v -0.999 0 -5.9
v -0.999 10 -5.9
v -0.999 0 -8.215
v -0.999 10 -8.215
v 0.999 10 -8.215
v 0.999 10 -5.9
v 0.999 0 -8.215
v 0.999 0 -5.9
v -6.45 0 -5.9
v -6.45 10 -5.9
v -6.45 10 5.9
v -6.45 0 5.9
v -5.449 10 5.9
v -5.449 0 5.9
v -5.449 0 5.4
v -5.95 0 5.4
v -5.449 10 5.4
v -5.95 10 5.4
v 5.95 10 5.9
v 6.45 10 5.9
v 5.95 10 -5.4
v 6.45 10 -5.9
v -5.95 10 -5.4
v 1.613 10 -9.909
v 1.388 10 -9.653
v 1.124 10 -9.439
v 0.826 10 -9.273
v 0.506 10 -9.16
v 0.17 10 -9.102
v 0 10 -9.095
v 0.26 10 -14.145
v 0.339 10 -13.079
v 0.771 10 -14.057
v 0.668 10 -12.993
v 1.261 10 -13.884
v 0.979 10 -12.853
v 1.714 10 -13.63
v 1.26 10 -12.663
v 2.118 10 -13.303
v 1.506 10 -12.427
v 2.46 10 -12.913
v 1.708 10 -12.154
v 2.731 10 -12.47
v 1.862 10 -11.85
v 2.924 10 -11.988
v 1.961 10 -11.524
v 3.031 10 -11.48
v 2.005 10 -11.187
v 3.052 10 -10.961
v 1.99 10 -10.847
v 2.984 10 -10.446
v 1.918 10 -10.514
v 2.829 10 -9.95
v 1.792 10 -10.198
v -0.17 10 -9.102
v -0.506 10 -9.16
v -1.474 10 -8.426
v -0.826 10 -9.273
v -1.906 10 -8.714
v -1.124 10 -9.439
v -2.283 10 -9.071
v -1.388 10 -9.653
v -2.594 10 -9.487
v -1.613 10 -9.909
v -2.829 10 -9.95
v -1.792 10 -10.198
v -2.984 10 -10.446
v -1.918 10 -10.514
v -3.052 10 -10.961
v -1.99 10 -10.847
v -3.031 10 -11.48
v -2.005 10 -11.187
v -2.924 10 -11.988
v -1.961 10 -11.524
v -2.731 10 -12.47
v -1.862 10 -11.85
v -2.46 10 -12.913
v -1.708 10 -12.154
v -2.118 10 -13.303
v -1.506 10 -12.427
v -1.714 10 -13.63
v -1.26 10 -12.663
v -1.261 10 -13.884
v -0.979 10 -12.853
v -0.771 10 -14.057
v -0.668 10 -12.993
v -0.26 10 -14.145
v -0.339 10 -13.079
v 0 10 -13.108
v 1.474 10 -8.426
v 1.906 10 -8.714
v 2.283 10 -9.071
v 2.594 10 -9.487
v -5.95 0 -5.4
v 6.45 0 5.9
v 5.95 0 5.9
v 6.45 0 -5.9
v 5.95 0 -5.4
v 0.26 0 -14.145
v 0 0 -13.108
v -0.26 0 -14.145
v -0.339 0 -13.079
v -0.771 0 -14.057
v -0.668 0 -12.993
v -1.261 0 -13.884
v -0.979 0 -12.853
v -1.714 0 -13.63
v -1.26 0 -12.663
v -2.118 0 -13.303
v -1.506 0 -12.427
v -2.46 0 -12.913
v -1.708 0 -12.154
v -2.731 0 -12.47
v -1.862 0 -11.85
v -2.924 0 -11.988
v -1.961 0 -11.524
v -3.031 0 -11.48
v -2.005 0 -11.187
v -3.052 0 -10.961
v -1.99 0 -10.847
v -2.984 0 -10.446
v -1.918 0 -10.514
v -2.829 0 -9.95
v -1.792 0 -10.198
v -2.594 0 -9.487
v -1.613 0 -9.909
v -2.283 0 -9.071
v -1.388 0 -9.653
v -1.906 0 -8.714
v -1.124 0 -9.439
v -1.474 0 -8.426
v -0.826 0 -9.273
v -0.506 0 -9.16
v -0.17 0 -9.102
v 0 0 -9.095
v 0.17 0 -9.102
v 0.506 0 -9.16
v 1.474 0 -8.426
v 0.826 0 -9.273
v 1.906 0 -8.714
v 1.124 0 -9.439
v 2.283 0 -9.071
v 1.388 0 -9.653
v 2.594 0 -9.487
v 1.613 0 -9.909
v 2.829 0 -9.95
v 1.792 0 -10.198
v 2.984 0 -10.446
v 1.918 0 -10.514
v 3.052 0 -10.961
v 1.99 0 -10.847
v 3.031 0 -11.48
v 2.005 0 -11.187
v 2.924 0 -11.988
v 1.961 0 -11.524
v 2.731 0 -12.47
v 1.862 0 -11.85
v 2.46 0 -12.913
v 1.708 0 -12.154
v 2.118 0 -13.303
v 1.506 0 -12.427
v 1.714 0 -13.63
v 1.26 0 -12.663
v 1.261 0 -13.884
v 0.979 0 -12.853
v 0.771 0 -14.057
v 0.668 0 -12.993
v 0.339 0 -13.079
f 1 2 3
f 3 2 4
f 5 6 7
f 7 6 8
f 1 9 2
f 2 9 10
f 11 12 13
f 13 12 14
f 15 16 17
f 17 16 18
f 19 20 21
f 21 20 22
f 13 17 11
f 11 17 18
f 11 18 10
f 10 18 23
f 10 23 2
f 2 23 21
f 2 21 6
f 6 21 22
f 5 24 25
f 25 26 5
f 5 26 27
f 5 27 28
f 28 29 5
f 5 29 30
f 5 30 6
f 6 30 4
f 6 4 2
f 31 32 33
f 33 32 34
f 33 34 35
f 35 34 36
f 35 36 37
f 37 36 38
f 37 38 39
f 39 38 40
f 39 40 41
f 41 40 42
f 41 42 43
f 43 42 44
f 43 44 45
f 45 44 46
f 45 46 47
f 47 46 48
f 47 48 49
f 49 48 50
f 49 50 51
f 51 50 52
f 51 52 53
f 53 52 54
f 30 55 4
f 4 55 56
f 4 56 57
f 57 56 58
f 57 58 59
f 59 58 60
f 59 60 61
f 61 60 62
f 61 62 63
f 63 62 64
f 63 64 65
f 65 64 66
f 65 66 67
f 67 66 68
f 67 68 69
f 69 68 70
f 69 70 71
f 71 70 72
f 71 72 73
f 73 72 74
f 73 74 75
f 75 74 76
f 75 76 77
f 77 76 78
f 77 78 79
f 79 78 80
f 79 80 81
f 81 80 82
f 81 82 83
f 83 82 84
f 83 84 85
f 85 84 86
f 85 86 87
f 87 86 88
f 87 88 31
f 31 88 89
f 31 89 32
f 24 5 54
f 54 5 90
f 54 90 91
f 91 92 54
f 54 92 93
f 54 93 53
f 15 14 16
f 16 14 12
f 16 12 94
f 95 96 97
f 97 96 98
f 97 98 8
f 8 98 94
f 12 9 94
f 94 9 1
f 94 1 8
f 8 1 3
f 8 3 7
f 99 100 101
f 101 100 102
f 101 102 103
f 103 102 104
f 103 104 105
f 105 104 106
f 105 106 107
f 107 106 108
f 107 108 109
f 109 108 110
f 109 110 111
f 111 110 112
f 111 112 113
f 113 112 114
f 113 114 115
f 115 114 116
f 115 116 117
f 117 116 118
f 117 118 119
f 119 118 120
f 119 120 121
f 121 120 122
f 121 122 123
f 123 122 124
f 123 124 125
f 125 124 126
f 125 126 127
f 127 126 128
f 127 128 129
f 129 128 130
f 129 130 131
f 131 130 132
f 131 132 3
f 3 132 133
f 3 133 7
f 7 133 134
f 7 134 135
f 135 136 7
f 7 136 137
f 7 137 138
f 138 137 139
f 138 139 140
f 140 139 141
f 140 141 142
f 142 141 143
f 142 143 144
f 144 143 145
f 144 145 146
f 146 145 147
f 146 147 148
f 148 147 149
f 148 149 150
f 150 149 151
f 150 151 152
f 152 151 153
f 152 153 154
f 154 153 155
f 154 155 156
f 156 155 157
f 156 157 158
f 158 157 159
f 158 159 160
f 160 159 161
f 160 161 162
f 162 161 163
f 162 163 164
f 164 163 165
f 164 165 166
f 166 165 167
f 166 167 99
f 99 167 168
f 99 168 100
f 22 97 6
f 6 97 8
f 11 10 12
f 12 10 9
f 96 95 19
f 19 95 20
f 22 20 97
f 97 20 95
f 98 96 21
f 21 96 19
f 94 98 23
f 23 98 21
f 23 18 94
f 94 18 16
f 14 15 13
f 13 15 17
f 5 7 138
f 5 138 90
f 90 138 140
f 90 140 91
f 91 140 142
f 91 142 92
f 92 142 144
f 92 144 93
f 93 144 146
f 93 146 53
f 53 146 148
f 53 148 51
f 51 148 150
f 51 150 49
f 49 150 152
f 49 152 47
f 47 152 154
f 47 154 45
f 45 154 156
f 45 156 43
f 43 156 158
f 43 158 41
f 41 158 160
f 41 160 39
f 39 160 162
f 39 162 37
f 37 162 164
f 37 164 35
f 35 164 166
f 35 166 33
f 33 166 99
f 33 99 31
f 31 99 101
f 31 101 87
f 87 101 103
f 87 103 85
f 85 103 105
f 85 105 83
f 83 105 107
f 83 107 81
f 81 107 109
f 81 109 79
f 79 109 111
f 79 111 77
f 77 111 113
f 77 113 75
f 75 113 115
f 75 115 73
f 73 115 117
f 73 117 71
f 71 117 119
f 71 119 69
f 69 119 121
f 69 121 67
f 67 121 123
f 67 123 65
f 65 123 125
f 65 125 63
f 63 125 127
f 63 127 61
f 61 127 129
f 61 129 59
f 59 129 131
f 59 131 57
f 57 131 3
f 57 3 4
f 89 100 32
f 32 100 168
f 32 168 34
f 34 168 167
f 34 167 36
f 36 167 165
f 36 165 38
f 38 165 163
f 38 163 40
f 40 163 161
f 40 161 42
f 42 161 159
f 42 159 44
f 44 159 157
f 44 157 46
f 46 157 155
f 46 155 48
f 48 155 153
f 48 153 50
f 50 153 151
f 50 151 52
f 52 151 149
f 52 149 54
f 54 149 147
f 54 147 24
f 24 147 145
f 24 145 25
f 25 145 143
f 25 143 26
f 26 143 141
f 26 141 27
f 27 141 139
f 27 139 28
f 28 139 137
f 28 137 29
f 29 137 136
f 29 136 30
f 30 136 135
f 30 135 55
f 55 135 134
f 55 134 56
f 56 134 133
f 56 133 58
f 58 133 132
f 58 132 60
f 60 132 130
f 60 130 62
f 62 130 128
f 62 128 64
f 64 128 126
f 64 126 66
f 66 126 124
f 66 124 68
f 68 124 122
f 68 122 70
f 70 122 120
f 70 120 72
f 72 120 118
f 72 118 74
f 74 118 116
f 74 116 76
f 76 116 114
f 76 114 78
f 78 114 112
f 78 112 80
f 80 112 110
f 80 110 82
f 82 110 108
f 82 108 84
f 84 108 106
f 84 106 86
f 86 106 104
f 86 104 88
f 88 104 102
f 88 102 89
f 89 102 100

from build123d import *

# Parameters (mm, degrees)
SKETCH3_W           = 12.9
SKETCH3_H           = 11.8
BOSS_EXTRUDE2_DEPTH = 10
SKETCH4_W           = 11.9
SKETCH4_H           = 10.8
CUT_EXTRUDE1_DEPTH  = 10
SKETCH5_W           = 11.3990209
SKETCH5_H           = 5.9
CUT_EXTRUDE2_DEPTH  = 10
SKETCH6_W           = 1.998577766
SKETCH6_H           = 2.842465616
BOSS_EXTRUDE3_DEPTH = 10
SKETCH7_R           = 3.054866119
BOSS_EXTRUDE4_DEPTH = 10
SKETCH8_R           = 2.006377858
CUT_EXTRUDE3_DEPTH  = 10


with BuildPart() as part:
    # Sketch3 → Boss-Extrude2 (new body)
    with BuildSketch(Plane(origin=(0, 0, 0), x_dir=(1, 0, 0), z_dir=(0, 1, 0))):
        Rectangle(SKETCH3_W, SKETCH3_H)
    extrude(amount=BOSS_EXTRUDE2_DEPTH)

    # Sketch4 → Cut-Extrude1 (cut)
    with BuildSketch(Plane(origin=(0, 0, 0), x_dir=(1, 0, 0), z_dir=(0, 1, 0))):
        Rectangle(SKETCH4_W, SKETCH4_H)
    extrude(amount=CUT_EXTRUDE1_DEPTH, mode=Mode.SUBTRACT)

    # Sketch5 → Cut-Extrude2 (cut)
    with BuildSketch(Plane(origin=(0, 0, 0), x_dir=(1, 0, 0), z_dir=(0, 1, 0))):
        with Locations((0.25048955, -2.95)):
            Rectangle(SKETCH5_W, SKETCH5_H)
    extrude(amount=CUT_EXTRUDE2_DEPTH, mode=Mode.SUBTRACT)

    # Sketch6 → Boss-Extrude3 (add)
    with BuildSketch(Plane(origin=(0, 0, 0), x_dir=(1, 0, 0), z_dir=(0, 1, 0))):
        with Locations((0, 6.821232808)):
            Rectangle(SKETCH6_W, SKETCH6_H)
    extrude(amount=BOSS_EXTRUDE3_DEPTH)

    # Sketch7 → Boss-Extrude4 (add)
    with BuildSketch(Plane(origin=(0, 0, 0), x_dir=(1, 0, 0), z_dir=(0, 1, 0))):
        with Locations((0, 11.101611726)):
            Circle(SKETCH7_R)
    extrude(amount=BOSS_EXTRUDE4_DEPTH)

    # Sketch8 → Cut-Extrude3 (cut)
    with BuildSketch(Plane(origin=(0, 0, 0), x_dir=(1, 0, 0), z_dir=(0, 1, 0))):
        with Locations(Location((0, 11.101611726, 0), (0, 0, 270))):
            Circle(SKETCH8_R)
    extrude(amount=CUT_EXTRUDE3_DEPTH, mode=Mode.SUBTRACT)


solid = part.part
